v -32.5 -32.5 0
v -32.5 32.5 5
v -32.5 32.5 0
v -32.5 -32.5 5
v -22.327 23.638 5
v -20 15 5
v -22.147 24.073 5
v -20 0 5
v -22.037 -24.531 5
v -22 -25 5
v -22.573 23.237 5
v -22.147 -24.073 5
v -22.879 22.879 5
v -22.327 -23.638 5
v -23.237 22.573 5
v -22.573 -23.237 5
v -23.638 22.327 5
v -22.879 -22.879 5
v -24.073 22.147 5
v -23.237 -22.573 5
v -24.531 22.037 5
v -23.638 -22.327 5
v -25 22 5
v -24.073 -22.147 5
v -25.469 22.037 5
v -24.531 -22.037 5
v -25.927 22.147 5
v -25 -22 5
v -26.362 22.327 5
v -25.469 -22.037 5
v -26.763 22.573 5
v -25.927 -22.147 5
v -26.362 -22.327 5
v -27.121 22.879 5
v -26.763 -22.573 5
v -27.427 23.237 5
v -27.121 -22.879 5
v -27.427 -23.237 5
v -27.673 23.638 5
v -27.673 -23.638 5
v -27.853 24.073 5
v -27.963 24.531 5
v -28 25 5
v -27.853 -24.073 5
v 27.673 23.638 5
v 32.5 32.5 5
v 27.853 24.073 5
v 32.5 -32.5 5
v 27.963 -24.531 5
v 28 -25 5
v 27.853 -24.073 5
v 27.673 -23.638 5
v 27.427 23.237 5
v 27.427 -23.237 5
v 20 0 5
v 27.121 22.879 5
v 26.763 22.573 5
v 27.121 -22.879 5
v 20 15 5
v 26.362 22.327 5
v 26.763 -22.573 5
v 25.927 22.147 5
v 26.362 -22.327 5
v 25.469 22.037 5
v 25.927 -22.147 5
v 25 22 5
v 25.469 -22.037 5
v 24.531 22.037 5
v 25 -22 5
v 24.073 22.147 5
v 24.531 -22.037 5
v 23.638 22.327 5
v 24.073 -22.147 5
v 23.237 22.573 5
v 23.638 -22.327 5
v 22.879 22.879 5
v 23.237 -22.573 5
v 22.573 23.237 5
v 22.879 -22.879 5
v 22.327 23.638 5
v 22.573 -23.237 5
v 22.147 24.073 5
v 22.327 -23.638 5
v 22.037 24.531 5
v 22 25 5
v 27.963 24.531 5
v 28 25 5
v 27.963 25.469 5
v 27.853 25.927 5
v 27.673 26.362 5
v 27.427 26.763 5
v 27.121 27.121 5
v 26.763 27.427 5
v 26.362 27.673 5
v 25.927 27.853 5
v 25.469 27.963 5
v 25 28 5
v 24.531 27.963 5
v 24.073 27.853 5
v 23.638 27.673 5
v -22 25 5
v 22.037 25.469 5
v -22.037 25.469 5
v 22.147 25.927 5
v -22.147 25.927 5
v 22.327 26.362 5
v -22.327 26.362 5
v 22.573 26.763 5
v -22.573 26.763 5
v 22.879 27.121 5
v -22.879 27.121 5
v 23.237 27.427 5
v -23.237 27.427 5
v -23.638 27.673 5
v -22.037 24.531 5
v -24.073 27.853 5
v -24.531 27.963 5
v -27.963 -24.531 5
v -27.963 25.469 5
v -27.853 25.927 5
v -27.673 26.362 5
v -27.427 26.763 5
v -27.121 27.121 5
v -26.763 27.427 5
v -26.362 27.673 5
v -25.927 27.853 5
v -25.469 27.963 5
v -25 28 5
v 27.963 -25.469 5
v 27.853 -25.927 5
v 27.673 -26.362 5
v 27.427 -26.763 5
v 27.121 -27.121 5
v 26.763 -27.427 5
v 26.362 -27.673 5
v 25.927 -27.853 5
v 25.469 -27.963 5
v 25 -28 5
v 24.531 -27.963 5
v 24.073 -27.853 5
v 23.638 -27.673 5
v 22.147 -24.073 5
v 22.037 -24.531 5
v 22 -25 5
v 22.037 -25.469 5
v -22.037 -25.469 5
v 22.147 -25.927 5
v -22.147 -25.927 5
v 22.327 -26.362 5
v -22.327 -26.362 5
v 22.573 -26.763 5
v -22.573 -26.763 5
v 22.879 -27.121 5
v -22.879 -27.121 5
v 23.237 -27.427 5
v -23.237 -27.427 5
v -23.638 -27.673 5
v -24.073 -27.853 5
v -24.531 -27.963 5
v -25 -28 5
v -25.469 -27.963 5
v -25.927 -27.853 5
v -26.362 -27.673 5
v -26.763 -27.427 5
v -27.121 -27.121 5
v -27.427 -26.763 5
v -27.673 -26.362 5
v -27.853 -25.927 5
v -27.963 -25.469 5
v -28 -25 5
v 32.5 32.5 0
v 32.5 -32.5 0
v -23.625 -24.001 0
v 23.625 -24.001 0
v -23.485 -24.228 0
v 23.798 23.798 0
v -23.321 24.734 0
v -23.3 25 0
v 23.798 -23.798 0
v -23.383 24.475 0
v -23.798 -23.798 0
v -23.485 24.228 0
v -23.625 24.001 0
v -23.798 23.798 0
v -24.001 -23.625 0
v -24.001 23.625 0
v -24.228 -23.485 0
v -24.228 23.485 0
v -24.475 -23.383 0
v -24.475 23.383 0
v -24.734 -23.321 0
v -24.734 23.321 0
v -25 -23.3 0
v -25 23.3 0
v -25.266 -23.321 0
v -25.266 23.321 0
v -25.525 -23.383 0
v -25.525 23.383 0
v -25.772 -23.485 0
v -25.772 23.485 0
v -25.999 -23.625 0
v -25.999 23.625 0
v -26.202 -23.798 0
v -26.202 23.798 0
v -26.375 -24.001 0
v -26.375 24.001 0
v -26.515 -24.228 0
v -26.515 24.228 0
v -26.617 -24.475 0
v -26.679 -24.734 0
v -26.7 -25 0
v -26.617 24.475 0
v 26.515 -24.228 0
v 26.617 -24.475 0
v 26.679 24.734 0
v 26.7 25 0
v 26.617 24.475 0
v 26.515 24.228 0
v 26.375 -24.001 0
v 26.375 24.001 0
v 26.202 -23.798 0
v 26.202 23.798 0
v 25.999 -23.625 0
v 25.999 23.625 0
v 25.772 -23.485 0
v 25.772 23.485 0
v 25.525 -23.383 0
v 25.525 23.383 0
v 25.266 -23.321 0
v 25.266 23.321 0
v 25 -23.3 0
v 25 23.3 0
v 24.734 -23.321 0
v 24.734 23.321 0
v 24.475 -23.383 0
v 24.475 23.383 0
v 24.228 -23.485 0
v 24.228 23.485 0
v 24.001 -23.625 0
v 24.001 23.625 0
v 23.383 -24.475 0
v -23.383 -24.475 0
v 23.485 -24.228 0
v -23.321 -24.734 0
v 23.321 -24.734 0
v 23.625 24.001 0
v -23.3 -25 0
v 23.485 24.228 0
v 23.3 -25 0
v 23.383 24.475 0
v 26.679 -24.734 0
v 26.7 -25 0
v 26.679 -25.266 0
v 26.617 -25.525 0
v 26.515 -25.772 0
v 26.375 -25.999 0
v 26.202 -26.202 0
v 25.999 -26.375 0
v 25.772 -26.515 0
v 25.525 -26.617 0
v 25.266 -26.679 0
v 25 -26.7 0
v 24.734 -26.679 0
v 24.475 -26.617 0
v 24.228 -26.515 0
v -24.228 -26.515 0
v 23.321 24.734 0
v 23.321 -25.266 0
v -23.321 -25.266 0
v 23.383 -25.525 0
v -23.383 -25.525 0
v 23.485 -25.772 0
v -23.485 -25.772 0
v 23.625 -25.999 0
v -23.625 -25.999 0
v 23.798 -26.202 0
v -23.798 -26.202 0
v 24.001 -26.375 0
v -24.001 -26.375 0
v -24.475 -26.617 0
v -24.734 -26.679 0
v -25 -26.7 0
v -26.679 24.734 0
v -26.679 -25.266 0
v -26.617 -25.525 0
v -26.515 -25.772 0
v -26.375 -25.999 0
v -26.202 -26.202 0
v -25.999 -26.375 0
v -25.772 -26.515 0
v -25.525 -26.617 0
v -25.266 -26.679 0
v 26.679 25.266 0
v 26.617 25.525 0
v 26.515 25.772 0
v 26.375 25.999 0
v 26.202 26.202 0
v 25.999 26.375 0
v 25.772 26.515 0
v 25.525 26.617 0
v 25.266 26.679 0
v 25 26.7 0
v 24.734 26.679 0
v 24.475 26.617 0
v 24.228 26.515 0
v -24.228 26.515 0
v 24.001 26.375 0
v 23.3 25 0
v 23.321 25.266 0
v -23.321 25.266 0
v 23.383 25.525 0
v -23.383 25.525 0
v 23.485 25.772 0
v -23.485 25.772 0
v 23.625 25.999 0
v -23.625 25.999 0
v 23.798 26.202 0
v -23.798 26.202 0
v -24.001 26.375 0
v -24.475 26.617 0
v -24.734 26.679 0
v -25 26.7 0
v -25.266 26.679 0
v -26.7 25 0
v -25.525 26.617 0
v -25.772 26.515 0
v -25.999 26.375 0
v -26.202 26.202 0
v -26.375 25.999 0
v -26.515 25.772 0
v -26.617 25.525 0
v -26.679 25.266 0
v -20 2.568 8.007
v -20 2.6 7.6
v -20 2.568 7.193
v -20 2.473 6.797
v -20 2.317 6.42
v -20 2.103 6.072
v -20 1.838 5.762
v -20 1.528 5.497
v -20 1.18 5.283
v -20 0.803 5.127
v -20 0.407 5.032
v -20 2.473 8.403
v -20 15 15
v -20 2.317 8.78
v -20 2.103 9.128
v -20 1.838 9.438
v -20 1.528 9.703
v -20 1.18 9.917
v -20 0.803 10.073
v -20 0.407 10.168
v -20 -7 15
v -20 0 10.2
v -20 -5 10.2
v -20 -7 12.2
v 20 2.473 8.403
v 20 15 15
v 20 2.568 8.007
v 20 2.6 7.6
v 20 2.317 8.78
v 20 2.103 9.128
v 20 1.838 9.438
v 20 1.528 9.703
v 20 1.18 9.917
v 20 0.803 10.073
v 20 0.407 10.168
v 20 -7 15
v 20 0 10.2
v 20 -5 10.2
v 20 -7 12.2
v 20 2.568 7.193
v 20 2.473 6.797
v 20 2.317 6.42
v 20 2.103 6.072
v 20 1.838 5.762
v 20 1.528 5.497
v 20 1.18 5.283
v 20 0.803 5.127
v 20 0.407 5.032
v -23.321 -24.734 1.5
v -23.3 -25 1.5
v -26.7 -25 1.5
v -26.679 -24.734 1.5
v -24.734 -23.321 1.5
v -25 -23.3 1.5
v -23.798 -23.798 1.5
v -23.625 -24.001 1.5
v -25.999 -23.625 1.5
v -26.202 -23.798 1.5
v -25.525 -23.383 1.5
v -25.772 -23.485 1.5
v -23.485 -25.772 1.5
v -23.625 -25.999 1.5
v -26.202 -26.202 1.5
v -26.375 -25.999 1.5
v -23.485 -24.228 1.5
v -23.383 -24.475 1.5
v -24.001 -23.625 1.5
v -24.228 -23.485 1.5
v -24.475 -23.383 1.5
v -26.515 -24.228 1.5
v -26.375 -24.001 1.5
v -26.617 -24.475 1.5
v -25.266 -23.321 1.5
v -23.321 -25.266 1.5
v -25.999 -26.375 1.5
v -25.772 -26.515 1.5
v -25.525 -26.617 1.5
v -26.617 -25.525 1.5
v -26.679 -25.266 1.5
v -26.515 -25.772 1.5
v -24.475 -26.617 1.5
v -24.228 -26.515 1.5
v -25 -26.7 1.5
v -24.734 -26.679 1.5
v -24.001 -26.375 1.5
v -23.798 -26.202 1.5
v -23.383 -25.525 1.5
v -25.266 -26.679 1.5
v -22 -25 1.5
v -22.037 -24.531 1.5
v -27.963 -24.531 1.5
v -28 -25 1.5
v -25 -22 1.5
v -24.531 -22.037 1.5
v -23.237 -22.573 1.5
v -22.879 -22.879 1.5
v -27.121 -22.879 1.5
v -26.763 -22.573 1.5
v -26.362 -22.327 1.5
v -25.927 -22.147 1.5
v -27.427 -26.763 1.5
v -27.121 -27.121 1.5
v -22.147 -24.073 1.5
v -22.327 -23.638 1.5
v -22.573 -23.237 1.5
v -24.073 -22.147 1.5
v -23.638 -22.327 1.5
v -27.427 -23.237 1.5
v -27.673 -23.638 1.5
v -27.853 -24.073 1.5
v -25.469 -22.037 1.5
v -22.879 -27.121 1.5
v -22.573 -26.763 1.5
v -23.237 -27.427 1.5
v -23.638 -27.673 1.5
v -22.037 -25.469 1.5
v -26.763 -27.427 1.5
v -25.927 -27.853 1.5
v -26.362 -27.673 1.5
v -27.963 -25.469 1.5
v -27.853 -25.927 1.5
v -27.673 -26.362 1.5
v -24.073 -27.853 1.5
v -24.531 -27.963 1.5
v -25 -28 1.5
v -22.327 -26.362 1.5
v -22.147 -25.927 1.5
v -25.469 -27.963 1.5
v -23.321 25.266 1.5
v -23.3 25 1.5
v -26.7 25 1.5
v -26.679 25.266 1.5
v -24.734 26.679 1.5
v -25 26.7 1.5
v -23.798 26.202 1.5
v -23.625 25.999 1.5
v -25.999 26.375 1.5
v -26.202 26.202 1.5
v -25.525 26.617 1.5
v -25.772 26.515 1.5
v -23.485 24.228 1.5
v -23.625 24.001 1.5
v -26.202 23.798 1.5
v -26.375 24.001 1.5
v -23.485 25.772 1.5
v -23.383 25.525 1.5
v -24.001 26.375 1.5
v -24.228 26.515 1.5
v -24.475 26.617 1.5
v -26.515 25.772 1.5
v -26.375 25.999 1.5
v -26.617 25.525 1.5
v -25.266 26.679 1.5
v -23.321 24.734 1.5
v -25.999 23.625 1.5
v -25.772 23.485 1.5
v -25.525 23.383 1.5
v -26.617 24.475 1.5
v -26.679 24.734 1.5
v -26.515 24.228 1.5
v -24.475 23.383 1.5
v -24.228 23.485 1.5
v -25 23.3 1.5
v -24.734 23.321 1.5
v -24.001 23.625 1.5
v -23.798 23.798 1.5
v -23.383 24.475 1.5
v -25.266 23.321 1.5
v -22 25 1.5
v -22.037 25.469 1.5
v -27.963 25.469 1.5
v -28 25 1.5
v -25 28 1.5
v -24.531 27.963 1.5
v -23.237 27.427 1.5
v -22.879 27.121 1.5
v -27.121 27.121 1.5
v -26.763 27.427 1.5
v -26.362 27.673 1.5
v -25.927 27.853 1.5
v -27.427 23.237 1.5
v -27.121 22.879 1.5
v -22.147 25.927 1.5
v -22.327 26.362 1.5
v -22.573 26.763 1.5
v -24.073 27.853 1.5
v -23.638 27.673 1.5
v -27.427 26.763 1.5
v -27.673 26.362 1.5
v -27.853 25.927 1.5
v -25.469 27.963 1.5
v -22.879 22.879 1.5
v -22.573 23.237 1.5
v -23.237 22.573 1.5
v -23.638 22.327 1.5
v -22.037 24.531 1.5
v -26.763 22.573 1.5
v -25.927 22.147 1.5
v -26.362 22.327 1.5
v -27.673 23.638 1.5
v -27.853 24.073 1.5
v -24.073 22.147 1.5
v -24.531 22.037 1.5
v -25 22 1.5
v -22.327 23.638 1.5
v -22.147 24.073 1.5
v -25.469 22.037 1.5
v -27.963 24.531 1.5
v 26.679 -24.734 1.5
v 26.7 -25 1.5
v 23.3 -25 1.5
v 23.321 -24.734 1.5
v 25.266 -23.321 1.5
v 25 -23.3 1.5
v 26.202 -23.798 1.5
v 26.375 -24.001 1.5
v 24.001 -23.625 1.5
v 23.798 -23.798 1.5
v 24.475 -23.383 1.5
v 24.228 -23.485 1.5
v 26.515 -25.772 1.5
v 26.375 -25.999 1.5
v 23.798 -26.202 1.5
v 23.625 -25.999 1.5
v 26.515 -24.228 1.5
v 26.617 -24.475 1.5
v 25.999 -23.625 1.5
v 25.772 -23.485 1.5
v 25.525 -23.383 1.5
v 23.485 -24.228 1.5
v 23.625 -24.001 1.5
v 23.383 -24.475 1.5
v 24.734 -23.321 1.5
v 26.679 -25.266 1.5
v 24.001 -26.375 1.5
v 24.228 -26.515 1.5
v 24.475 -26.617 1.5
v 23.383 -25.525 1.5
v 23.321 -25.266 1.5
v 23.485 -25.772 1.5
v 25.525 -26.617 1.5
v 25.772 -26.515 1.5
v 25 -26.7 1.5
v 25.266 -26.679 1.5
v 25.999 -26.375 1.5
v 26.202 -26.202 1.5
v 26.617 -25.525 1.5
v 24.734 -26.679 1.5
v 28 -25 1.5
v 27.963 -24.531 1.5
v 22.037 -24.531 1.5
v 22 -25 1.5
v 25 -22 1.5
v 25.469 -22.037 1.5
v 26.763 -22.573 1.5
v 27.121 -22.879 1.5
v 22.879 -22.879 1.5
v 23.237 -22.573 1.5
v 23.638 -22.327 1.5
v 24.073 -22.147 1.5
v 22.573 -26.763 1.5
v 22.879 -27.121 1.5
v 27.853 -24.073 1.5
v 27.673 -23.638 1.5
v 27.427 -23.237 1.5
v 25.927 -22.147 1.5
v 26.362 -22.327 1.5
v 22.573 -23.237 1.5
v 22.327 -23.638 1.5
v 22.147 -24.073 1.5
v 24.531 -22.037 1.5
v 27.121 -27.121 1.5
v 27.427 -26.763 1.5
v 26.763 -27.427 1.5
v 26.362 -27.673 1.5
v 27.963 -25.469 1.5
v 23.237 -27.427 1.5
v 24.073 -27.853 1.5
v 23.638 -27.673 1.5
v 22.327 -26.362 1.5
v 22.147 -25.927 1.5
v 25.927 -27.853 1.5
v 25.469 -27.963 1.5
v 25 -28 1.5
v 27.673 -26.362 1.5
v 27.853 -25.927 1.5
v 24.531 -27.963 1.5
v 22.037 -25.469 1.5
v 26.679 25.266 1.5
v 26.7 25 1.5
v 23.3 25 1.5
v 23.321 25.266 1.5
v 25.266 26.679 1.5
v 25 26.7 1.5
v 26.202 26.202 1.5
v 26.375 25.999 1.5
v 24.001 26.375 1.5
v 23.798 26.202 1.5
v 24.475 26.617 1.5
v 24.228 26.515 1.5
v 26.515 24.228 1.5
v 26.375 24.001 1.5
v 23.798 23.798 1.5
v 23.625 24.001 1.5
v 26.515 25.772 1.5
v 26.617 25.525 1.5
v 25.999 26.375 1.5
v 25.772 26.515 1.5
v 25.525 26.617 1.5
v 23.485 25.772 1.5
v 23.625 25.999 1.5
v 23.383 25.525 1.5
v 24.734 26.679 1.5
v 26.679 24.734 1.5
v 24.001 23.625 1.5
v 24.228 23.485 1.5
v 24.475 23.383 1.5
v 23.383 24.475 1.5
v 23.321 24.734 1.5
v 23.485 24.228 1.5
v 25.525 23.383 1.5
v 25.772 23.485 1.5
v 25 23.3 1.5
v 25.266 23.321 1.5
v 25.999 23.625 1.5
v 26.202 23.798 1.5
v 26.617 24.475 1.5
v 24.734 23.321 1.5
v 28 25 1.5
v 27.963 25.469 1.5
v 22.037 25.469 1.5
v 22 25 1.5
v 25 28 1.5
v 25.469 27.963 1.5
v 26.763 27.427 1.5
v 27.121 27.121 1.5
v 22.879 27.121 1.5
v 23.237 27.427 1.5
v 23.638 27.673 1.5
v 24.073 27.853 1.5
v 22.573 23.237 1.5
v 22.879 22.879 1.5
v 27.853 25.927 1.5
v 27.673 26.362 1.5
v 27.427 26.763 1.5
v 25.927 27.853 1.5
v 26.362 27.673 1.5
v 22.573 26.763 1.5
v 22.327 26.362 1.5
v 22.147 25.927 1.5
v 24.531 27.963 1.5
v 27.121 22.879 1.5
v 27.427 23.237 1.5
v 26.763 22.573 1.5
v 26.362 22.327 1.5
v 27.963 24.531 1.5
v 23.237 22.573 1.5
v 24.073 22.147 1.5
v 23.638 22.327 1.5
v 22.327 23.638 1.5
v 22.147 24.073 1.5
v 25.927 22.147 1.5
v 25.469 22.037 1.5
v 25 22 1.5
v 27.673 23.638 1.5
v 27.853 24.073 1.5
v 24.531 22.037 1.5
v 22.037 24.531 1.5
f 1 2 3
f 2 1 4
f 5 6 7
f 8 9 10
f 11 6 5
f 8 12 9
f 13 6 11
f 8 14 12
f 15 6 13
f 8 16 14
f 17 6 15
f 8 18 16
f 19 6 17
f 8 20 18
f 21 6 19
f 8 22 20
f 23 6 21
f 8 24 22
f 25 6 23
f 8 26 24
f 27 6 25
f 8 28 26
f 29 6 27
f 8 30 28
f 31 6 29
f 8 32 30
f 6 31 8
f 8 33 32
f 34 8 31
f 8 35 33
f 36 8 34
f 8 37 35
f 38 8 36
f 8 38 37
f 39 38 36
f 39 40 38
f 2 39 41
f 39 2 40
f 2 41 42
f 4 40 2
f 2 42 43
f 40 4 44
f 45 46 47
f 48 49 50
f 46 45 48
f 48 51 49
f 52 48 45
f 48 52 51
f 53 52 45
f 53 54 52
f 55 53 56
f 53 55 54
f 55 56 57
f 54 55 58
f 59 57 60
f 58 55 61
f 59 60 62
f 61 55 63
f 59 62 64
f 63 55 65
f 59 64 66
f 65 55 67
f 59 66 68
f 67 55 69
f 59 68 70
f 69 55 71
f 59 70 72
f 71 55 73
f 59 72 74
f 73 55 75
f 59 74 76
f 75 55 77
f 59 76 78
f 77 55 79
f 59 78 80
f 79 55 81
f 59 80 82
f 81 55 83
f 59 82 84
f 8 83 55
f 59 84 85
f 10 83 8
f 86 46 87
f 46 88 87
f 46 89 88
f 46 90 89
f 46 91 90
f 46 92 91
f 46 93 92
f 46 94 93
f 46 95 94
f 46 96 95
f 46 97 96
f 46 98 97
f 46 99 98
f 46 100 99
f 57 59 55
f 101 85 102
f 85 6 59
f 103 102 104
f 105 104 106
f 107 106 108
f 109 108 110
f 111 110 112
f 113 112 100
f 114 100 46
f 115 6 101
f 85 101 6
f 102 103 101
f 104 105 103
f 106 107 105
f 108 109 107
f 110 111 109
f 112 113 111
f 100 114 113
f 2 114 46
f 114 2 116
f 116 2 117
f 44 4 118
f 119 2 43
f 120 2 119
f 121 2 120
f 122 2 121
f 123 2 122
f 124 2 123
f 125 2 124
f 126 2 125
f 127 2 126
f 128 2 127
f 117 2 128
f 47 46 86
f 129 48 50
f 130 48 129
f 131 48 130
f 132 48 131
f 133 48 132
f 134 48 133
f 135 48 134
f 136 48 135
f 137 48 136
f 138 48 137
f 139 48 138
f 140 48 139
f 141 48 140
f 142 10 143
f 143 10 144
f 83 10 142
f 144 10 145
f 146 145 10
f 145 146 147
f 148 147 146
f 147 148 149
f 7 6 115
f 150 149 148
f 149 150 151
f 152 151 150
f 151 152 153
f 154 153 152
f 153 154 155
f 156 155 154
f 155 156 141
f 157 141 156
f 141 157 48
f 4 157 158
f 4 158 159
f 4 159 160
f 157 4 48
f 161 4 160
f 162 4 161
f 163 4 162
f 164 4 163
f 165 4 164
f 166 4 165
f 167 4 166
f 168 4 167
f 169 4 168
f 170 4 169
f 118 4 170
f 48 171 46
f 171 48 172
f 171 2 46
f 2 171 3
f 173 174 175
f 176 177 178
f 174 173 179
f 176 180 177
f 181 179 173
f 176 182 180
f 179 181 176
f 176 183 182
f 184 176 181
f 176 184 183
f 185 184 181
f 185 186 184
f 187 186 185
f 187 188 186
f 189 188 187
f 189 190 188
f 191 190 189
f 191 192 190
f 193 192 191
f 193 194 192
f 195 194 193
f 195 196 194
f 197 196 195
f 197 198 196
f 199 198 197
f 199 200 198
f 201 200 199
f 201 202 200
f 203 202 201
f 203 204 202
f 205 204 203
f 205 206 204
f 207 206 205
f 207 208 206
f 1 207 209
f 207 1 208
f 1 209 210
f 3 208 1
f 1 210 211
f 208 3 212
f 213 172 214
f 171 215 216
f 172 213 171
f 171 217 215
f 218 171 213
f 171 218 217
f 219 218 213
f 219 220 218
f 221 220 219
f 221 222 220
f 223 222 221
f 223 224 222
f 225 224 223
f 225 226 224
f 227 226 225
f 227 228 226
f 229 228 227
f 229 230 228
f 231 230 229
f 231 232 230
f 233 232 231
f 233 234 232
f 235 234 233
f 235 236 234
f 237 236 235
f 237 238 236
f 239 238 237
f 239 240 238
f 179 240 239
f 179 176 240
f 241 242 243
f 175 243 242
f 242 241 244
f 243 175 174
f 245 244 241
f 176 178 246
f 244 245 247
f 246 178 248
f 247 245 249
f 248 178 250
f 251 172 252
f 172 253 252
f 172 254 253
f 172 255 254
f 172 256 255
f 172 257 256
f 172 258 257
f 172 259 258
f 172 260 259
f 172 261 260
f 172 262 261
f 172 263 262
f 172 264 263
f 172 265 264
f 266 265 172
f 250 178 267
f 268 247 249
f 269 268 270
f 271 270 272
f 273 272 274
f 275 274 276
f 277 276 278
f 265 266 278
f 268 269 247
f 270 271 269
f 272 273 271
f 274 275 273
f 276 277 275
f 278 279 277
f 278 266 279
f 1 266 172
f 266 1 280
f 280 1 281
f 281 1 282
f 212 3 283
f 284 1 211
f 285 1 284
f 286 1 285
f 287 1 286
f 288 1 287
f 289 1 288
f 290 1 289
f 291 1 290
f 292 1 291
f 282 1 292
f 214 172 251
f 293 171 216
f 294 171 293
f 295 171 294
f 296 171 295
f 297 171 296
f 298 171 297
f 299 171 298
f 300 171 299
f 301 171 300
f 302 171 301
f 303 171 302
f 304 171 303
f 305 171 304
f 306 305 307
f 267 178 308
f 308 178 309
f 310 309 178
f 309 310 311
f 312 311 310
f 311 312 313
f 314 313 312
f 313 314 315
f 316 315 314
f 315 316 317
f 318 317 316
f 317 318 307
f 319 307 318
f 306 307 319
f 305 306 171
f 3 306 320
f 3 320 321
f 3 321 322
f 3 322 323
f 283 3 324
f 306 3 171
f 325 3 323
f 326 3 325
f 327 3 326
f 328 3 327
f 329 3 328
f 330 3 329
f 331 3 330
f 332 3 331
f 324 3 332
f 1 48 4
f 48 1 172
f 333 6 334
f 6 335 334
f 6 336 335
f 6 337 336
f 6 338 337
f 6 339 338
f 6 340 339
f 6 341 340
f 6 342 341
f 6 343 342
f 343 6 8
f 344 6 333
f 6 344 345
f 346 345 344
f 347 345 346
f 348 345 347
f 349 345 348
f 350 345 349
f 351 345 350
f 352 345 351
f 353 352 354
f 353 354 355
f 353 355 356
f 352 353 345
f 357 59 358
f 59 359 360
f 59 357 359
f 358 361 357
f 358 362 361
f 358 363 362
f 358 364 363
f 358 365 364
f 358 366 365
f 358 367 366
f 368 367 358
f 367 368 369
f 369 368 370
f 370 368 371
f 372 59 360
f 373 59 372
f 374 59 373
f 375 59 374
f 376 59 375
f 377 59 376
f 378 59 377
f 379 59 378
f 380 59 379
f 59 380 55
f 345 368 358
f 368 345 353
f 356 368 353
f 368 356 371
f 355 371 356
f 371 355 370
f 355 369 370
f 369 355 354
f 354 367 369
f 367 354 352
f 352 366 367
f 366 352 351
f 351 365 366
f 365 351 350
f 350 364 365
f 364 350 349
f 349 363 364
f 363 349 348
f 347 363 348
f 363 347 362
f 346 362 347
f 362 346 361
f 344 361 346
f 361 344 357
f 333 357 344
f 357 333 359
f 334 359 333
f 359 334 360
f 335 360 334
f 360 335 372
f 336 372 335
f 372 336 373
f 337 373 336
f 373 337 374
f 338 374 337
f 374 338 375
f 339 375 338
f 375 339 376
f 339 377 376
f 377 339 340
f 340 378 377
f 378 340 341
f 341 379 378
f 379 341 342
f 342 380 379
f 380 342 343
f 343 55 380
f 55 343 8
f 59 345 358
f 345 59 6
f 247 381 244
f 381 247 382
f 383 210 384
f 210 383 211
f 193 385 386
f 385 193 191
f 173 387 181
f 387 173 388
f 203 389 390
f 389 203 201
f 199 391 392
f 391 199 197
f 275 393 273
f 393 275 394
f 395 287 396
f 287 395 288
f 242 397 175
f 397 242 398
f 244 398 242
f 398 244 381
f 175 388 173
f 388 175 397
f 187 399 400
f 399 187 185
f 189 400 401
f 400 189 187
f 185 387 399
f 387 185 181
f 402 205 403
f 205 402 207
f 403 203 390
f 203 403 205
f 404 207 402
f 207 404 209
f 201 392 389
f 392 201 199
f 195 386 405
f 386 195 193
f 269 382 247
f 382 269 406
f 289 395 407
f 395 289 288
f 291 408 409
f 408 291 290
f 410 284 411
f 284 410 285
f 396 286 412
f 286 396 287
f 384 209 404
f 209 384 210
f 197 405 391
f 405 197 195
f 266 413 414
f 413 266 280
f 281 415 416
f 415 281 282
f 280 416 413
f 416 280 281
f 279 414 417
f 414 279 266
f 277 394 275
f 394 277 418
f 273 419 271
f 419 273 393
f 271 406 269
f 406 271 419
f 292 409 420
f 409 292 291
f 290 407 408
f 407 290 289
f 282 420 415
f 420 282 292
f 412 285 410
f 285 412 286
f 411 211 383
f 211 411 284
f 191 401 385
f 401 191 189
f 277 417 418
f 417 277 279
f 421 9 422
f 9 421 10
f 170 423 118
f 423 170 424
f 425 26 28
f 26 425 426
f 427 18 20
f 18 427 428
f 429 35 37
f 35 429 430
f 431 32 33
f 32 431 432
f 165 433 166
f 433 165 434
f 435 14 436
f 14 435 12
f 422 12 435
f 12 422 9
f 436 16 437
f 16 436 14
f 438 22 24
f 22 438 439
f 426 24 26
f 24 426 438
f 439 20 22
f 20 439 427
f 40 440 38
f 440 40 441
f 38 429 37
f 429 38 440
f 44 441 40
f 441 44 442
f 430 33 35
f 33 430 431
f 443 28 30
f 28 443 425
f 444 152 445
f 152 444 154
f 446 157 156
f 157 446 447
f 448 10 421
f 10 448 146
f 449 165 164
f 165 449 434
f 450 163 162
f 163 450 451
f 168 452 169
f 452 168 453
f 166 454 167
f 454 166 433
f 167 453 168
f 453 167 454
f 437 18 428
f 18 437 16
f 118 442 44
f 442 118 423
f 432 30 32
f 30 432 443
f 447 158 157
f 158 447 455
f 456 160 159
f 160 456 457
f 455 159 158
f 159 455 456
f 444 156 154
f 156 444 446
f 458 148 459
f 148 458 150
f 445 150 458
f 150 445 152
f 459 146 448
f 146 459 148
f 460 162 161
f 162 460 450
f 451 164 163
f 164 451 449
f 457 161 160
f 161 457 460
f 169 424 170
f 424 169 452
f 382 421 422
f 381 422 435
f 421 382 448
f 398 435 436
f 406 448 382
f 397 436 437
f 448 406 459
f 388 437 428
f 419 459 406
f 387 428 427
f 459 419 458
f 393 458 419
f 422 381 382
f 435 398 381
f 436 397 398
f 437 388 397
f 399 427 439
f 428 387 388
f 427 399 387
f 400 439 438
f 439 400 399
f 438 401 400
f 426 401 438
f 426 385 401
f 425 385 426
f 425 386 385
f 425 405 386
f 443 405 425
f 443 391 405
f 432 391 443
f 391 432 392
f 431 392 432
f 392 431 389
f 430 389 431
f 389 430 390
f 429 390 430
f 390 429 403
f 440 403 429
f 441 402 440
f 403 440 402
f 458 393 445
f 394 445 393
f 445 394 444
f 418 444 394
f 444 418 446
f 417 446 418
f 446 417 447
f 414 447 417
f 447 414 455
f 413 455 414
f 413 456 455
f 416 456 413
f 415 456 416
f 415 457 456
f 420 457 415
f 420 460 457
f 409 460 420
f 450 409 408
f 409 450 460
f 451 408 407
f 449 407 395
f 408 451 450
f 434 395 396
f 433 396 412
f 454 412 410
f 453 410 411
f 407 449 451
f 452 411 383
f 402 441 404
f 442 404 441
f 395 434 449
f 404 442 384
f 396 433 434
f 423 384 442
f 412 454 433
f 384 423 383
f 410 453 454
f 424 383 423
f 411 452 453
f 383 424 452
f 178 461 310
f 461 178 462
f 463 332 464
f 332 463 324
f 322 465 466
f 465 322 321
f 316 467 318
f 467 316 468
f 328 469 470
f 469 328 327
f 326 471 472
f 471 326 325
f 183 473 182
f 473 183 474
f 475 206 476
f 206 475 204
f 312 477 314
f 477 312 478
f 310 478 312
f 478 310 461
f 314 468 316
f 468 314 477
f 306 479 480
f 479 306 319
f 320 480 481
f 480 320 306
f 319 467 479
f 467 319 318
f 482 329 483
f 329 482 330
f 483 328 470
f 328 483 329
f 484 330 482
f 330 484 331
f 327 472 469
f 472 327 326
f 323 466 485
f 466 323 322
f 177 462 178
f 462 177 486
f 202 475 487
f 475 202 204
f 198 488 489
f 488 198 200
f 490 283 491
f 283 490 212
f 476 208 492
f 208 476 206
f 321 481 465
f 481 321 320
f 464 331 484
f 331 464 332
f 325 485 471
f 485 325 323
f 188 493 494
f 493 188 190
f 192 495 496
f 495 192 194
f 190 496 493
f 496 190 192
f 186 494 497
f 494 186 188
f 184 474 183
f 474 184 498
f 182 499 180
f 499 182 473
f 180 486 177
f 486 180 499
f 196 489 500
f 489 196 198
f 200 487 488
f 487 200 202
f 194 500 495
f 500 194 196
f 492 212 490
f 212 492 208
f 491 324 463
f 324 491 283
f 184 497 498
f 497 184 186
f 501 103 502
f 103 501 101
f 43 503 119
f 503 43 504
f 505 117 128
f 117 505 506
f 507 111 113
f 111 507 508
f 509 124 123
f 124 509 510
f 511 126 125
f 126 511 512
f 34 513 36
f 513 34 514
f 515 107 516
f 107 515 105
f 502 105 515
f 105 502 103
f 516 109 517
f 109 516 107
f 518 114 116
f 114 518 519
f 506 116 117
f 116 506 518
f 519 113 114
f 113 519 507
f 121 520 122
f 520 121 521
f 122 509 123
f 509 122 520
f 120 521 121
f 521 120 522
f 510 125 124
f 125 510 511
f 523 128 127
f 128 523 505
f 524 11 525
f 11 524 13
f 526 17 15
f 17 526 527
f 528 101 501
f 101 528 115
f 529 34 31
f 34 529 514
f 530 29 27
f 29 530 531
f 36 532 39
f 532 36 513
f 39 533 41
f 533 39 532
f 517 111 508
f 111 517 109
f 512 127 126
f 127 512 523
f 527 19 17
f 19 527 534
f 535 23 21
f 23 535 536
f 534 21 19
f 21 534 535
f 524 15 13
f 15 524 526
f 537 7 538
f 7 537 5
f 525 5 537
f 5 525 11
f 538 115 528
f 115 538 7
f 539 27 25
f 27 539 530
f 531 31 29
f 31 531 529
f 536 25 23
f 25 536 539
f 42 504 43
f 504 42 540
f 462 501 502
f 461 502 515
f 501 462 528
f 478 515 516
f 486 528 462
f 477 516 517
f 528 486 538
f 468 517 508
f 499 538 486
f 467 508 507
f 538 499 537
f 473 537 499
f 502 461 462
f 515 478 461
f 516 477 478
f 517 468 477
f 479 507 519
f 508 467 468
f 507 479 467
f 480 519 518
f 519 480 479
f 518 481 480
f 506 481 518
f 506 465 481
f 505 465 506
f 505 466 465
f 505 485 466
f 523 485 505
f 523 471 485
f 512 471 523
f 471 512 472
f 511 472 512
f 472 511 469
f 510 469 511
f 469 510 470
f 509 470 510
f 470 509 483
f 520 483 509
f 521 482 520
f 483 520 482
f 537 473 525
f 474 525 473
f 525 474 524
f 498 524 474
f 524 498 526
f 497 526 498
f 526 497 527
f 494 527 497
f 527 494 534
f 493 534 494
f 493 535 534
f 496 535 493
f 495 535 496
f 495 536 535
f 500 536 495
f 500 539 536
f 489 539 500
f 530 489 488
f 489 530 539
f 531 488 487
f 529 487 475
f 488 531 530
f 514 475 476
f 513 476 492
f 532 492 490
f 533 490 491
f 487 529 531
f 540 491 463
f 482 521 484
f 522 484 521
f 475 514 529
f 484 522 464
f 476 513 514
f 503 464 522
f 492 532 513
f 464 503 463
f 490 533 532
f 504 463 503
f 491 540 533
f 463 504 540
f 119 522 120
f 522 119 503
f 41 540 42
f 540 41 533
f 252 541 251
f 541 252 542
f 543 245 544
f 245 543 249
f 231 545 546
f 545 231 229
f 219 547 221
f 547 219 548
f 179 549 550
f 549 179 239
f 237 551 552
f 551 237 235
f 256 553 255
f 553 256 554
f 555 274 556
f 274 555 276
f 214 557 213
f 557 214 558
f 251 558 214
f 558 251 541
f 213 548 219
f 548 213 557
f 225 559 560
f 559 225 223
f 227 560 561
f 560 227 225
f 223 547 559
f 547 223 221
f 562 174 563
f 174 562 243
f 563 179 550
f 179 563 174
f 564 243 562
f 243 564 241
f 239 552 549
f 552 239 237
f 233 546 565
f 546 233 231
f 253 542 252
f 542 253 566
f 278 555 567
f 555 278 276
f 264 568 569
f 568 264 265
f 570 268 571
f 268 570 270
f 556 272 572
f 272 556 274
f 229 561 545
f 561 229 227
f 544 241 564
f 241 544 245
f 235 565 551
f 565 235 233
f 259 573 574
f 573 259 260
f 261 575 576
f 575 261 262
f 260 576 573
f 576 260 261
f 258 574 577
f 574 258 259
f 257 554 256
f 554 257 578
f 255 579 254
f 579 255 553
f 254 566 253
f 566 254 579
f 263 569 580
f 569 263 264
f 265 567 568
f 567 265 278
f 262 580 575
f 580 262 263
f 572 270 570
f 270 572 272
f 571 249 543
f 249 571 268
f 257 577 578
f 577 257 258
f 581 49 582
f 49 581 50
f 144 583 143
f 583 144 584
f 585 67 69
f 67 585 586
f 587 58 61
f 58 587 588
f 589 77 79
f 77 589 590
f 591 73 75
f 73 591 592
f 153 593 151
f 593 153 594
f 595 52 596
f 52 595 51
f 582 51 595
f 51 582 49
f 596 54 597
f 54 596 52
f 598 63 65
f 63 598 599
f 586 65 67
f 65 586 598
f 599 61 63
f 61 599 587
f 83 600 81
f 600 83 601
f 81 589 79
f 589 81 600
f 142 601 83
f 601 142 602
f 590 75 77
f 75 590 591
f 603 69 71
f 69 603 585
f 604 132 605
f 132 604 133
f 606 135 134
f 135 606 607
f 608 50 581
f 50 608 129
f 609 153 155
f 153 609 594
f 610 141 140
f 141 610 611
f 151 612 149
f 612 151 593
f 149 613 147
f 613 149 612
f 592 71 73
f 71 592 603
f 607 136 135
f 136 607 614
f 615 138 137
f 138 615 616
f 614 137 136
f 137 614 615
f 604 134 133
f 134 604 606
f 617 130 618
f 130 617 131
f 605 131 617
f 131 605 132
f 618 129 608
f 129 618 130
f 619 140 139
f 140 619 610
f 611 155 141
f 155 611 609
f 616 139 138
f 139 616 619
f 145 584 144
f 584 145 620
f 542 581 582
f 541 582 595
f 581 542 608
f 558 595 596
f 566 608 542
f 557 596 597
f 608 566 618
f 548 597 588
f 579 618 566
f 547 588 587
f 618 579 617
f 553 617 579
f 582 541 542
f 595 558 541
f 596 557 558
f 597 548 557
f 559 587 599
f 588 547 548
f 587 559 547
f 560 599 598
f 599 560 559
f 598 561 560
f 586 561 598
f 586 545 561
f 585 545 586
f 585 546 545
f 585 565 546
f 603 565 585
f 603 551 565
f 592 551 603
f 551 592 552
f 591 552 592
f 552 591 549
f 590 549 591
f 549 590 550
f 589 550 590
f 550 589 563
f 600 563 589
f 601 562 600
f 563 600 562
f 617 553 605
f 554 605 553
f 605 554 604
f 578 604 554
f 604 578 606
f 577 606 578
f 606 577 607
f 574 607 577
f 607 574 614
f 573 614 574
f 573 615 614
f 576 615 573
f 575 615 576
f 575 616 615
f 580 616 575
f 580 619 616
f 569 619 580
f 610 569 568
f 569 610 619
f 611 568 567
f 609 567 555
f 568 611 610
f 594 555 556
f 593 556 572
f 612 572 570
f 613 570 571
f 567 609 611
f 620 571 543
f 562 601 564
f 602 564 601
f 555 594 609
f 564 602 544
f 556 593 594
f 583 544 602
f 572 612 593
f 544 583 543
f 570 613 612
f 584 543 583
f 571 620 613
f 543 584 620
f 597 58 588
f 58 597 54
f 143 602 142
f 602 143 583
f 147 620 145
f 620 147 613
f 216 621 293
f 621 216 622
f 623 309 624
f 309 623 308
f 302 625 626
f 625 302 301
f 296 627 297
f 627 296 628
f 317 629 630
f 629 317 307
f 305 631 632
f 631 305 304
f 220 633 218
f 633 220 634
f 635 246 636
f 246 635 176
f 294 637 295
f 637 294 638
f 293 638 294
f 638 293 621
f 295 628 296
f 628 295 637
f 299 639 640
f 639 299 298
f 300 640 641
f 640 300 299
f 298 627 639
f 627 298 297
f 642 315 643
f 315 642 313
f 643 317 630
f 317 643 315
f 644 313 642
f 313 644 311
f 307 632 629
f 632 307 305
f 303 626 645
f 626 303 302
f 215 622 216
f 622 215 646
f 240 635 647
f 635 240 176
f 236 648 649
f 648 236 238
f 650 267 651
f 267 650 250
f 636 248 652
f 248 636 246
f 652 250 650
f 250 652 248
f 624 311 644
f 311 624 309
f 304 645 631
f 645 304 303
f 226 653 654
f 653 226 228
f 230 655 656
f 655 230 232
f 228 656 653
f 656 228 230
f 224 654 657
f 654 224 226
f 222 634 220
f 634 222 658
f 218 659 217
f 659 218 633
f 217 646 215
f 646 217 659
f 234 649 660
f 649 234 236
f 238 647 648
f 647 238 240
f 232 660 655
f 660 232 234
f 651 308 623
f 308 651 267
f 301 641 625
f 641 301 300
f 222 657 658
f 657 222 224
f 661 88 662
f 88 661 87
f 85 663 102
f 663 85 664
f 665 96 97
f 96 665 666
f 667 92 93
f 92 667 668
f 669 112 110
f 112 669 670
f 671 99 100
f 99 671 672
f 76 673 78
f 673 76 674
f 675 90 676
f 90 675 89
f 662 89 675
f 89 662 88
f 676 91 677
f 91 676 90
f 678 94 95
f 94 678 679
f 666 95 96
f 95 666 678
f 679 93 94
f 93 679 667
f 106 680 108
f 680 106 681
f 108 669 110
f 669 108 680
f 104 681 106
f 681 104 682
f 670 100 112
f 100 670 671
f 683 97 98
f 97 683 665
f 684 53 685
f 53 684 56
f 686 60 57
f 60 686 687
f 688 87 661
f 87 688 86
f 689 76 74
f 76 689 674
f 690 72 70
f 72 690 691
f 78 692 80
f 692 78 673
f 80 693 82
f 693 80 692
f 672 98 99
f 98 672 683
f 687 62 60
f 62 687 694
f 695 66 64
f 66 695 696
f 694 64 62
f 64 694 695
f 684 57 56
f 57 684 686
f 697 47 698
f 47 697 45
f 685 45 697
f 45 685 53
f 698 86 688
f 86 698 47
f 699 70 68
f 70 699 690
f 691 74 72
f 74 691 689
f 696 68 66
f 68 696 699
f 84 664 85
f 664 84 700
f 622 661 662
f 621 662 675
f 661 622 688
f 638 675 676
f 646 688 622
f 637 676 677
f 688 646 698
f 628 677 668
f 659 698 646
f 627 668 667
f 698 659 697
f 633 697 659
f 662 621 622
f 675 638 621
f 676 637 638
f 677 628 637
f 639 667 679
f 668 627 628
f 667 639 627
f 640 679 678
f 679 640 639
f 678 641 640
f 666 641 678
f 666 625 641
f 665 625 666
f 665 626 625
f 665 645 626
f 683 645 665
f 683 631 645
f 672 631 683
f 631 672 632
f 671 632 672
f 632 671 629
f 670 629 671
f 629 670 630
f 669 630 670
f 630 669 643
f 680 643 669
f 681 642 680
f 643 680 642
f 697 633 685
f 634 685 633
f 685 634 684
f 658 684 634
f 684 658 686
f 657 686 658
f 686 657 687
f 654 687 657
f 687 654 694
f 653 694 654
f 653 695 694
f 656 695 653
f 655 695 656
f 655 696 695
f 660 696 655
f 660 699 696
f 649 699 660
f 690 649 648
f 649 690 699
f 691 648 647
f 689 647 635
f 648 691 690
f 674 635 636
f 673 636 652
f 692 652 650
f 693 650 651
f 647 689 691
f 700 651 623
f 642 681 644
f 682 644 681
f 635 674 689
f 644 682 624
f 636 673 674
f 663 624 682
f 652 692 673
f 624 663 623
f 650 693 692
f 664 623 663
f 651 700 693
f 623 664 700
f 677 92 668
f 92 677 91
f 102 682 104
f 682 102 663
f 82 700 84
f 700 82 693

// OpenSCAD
// Padel Court Mesh Hook for 7-Segment Display
// Designed to hang perfectly on standard 50x50mm electro-welded wire mesh
// Interfaces securely with the 50x50 VESA pattern on the display backplate

/*
ASSEMBLY INSTRUCTIONS:
1. Screw this hook bracket to the display's VESA holes using four M3x10mm screws.
   (The screw heads will sink into the counterbores so they don't scratch the mesh).
2. Simply push the display onto a horizontal wire of the padel court mesh!
   The hook has an angled entry guide and is designed to snap firmly over a 5mm wire.
*/

$fn = 40;

module hook_profile_2d() {
    difference() {
        // Hook outer block with angled entry chamfer
        polygon([
            [0, 5],
            [15, 5],      // Extends upwards for strength
            [15, 15],     // Top thickness
            [-7, 15],     // Hook lip extends forwards over the wire
            [-7, 12.2],   // Outer corner of the lip
            [-5, 10.2],   // Angled chamfer guiding the wire into the slot
            [0, 10.2]     // Inside edge of the lip
        ]);
        
        // Subtract a perfectly round pocket for the 5mm wire (r=2.6mm for a nice snug fit)
        // This is perfectly centered so the display hangs straight down.
        translate([0, 7.6]) circle(r=2.6);
        
        // Subtract the straight entry slot so the wire can slide into the pocket
        translate([-7.1, 5]) square([7.1, 5.2]);
    }
}

module padel_hook() {
    difference() {
        union() {
            // Main base plate (65x65mm wide to accommodate the 50x50 VESA pattern)
            translate([0, 0, 2.5]) cube([65, 65, 5], center=true);
            
            // Extrude the 2D hook profile to be exactly 40mm wide
            // This guarantees it fits comfortably between the 50mm vertical wires of the mesh!
            translate([-20, 0, 0])
                rotate([90, 0, 90])
                    linear_extrude(height = 40)
                        hook_profile_2d();
        }
        
        // 1. VESA mounting holes (M3)
        // Countersunk/counterbored so the M3 screw heads sit below the surface
        for(x = [-25, 25]) {
            for(y = [-25, 25]) {
                translate([x, y, -1]) {
                    // M3 clearance shaft
                    cylinder(h=10, r=1.7);
                    // Counterbore for M3 socket head (head dia 5.5mm -> r=3.0)
                    translate([0, 0, 5 - 3.5 + 1]) 
                        cylinder(h=4.0, r=3.0);
                }
            }
        }
    }
}

// Render the hook
color("SlateGray") padel_hook();
